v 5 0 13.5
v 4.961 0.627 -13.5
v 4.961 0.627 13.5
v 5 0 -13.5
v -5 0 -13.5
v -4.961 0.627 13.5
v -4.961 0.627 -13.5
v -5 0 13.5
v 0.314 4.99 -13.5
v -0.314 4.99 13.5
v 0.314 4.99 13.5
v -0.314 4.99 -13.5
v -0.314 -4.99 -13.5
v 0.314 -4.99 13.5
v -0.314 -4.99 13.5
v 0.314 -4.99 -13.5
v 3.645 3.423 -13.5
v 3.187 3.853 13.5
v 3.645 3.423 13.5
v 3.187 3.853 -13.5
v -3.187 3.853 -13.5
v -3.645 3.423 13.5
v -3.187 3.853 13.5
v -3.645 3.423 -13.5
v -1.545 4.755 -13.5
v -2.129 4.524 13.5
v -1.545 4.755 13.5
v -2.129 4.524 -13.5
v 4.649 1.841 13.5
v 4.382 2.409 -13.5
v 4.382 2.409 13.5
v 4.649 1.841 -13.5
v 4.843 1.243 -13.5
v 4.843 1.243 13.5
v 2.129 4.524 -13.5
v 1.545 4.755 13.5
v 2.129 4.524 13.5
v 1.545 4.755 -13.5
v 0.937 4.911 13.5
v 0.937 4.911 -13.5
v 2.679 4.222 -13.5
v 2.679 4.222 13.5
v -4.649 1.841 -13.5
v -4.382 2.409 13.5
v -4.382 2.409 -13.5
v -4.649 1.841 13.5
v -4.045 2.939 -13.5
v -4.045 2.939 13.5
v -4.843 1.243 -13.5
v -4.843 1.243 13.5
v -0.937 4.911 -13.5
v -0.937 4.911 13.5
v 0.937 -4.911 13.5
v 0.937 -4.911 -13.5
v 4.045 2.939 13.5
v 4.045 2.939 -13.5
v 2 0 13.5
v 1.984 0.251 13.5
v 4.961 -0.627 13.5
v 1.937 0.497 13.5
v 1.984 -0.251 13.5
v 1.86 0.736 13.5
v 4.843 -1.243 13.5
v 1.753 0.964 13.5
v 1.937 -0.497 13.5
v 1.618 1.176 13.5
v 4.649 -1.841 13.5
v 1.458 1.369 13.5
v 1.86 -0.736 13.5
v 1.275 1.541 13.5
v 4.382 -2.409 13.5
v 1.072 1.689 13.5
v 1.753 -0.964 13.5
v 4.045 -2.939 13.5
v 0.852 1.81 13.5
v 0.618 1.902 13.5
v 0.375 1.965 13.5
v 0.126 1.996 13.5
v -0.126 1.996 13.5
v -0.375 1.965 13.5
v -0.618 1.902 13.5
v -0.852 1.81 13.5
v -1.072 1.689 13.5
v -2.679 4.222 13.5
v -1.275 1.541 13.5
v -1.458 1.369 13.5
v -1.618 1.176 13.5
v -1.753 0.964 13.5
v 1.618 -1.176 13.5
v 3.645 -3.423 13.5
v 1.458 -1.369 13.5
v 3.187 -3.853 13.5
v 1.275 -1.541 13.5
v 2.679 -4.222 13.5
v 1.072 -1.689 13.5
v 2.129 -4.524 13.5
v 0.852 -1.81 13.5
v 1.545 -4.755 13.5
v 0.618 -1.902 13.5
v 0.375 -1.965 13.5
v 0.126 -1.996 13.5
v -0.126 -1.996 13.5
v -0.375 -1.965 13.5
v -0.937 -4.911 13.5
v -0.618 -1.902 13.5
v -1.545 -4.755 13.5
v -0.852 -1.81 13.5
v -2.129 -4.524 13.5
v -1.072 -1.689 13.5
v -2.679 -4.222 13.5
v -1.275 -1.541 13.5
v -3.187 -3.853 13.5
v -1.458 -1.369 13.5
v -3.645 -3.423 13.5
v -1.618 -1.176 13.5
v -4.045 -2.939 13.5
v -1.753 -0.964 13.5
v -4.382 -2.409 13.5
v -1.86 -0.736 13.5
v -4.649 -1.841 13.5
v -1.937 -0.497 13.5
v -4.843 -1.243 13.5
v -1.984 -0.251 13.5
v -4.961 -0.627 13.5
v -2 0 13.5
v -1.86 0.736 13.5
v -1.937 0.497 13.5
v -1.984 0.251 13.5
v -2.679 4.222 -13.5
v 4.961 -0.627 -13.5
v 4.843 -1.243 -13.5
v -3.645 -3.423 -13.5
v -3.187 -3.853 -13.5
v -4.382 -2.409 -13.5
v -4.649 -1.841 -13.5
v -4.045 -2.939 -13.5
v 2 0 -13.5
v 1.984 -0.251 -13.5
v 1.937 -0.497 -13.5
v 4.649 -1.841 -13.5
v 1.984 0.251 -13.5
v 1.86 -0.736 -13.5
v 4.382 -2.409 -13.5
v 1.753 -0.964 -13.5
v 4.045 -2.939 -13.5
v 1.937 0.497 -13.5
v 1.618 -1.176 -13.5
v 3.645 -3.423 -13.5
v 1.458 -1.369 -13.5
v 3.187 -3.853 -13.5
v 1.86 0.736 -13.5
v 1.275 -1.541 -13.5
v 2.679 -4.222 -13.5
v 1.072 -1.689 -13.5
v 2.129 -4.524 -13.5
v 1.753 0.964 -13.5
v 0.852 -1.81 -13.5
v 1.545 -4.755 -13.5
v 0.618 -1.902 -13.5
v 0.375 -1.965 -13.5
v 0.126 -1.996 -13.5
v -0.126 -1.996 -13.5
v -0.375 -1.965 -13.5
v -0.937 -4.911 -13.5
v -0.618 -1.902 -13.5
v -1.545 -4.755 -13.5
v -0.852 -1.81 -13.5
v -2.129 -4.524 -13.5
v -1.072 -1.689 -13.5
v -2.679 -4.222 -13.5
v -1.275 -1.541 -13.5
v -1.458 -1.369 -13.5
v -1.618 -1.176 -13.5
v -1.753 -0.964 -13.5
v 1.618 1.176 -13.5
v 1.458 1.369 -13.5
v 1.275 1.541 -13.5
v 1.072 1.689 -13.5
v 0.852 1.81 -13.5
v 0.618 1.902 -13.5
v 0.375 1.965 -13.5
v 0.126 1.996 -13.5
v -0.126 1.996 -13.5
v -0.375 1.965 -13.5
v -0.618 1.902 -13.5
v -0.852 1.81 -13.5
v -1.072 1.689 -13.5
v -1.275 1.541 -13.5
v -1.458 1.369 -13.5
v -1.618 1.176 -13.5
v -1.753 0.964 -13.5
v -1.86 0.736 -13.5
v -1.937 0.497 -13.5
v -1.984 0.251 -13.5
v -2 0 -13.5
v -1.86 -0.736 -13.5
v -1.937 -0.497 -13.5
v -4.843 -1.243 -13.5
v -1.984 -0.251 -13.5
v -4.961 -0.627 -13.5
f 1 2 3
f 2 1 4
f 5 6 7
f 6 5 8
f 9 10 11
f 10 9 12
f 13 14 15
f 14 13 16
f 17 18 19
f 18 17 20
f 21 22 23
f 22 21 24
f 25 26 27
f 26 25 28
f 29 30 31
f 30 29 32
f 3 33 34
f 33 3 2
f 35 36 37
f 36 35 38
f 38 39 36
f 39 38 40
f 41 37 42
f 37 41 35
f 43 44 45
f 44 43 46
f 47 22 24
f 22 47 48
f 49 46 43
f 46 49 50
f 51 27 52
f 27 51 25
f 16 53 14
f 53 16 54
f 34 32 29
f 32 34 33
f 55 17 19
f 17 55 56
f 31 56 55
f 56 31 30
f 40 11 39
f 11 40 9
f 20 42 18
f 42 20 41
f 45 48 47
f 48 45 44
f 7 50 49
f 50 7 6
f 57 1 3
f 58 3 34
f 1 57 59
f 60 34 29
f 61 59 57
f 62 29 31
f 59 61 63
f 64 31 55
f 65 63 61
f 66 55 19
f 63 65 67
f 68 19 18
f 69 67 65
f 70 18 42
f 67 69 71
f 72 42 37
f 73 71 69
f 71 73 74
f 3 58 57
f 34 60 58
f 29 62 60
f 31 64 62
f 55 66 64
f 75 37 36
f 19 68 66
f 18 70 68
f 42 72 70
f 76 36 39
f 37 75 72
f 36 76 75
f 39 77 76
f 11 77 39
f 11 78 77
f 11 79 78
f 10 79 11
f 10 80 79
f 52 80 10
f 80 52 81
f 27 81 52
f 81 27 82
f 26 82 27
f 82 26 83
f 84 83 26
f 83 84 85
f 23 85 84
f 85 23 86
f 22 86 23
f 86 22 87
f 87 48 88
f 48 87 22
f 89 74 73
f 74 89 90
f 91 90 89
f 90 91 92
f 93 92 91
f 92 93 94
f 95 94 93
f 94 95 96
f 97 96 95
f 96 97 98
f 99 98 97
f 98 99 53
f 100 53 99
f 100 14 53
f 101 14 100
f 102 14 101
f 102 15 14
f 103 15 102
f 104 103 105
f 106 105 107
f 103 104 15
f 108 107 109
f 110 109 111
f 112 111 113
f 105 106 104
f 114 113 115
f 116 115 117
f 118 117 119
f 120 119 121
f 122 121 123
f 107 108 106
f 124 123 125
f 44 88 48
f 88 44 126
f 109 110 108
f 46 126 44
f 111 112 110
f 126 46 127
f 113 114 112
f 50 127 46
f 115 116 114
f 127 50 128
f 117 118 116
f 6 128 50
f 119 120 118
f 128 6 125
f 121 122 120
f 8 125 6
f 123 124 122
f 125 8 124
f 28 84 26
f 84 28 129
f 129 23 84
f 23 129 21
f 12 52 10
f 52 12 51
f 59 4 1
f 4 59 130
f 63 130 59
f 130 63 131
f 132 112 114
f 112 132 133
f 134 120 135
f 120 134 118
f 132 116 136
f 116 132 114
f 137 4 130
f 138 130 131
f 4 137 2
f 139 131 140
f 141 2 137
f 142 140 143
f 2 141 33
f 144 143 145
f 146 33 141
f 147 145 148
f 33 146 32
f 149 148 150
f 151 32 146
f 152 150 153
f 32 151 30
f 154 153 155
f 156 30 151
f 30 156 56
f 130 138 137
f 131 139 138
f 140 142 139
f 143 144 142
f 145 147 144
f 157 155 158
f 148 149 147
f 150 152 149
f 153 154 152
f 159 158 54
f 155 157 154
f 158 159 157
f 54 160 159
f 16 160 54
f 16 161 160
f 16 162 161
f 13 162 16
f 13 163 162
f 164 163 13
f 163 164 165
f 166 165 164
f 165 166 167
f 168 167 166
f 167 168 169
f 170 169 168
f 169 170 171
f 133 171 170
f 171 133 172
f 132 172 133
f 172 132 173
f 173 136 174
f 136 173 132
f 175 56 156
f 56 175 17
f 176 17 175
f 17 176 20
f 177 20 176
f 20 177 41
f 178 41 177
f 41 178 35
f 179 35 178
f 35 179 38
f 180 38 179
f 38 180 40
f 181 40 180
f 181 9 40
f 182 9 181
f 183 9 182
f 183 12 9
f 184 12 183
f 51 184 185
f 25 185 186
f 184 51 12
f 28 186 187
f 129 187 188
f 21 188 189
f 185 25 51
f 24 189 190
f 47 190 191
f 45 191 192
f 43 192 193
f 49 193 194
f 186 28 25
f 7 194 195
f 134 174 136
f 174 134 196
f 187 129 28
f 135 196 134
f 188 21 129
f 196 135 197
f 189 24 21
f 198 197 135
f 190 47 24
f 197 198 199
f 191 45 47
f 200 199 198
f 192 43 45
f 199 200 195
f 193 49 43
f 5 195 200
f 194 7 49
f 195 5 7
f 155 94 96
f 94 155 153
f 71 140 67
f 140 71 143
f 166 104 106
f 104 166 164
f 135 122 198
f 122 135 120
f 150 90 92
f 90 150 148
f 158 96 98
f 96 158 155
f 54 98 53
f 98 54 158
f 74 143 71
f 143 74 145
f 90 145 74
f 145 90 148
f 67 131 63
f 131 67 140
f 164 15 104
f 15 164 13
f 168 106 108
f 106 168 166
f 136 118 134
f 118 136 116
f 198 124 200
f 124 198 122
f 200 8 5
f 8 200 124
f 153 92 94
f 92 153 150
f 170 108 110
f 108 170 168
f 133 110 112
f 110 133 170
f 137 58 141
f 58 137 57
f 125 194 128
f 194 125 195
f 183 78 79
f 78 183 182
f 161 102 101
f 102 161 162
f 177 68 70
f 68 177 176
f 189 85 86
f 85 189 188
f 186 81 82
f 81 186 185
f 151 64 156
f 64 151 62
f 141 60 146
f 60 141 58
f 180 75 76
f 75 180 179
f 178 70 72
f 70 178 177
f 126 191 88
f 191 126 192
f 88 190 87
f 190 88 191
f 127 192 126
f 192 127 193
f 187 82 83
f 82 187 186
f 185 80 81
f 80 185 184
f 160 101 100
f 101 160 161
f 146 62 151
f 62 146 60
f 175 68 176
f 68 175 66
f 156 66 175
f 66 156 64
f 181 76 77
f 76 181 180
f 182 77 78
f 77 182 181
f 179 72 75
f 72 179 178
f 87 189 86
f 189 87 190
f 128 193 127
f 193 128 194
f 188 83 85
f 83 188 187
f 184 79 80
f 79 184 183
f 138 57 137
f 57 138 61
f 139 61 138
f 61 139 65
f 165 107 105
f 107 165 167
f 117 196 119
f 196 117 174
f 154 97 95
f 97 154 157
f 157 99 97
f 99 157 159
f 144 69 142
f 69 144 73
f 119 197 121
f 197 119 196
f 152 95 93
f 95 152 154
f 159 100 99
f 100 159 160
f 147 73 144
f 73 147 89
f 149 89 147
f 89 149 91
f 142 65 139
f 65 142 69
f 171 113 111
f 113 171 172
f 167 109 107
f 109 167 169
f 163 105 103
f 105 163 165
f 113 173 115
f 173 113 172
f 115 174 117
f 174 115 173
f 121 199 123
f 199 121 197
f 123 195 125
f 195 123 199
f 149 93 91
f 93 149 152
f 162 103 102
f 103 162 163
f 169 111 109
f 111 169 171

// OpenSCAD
$fn = 50;


difference() {
	union() {
		translate(v = [0, 0, -13.5000000000]) {
			cylinder(h = 27, r = 5.0000000000);
		}
	}
	union() {
		translate(v = [0, 0, -100.0000000000]) {
			cylinder(h = 200, r = 2);
		}
	}
}
